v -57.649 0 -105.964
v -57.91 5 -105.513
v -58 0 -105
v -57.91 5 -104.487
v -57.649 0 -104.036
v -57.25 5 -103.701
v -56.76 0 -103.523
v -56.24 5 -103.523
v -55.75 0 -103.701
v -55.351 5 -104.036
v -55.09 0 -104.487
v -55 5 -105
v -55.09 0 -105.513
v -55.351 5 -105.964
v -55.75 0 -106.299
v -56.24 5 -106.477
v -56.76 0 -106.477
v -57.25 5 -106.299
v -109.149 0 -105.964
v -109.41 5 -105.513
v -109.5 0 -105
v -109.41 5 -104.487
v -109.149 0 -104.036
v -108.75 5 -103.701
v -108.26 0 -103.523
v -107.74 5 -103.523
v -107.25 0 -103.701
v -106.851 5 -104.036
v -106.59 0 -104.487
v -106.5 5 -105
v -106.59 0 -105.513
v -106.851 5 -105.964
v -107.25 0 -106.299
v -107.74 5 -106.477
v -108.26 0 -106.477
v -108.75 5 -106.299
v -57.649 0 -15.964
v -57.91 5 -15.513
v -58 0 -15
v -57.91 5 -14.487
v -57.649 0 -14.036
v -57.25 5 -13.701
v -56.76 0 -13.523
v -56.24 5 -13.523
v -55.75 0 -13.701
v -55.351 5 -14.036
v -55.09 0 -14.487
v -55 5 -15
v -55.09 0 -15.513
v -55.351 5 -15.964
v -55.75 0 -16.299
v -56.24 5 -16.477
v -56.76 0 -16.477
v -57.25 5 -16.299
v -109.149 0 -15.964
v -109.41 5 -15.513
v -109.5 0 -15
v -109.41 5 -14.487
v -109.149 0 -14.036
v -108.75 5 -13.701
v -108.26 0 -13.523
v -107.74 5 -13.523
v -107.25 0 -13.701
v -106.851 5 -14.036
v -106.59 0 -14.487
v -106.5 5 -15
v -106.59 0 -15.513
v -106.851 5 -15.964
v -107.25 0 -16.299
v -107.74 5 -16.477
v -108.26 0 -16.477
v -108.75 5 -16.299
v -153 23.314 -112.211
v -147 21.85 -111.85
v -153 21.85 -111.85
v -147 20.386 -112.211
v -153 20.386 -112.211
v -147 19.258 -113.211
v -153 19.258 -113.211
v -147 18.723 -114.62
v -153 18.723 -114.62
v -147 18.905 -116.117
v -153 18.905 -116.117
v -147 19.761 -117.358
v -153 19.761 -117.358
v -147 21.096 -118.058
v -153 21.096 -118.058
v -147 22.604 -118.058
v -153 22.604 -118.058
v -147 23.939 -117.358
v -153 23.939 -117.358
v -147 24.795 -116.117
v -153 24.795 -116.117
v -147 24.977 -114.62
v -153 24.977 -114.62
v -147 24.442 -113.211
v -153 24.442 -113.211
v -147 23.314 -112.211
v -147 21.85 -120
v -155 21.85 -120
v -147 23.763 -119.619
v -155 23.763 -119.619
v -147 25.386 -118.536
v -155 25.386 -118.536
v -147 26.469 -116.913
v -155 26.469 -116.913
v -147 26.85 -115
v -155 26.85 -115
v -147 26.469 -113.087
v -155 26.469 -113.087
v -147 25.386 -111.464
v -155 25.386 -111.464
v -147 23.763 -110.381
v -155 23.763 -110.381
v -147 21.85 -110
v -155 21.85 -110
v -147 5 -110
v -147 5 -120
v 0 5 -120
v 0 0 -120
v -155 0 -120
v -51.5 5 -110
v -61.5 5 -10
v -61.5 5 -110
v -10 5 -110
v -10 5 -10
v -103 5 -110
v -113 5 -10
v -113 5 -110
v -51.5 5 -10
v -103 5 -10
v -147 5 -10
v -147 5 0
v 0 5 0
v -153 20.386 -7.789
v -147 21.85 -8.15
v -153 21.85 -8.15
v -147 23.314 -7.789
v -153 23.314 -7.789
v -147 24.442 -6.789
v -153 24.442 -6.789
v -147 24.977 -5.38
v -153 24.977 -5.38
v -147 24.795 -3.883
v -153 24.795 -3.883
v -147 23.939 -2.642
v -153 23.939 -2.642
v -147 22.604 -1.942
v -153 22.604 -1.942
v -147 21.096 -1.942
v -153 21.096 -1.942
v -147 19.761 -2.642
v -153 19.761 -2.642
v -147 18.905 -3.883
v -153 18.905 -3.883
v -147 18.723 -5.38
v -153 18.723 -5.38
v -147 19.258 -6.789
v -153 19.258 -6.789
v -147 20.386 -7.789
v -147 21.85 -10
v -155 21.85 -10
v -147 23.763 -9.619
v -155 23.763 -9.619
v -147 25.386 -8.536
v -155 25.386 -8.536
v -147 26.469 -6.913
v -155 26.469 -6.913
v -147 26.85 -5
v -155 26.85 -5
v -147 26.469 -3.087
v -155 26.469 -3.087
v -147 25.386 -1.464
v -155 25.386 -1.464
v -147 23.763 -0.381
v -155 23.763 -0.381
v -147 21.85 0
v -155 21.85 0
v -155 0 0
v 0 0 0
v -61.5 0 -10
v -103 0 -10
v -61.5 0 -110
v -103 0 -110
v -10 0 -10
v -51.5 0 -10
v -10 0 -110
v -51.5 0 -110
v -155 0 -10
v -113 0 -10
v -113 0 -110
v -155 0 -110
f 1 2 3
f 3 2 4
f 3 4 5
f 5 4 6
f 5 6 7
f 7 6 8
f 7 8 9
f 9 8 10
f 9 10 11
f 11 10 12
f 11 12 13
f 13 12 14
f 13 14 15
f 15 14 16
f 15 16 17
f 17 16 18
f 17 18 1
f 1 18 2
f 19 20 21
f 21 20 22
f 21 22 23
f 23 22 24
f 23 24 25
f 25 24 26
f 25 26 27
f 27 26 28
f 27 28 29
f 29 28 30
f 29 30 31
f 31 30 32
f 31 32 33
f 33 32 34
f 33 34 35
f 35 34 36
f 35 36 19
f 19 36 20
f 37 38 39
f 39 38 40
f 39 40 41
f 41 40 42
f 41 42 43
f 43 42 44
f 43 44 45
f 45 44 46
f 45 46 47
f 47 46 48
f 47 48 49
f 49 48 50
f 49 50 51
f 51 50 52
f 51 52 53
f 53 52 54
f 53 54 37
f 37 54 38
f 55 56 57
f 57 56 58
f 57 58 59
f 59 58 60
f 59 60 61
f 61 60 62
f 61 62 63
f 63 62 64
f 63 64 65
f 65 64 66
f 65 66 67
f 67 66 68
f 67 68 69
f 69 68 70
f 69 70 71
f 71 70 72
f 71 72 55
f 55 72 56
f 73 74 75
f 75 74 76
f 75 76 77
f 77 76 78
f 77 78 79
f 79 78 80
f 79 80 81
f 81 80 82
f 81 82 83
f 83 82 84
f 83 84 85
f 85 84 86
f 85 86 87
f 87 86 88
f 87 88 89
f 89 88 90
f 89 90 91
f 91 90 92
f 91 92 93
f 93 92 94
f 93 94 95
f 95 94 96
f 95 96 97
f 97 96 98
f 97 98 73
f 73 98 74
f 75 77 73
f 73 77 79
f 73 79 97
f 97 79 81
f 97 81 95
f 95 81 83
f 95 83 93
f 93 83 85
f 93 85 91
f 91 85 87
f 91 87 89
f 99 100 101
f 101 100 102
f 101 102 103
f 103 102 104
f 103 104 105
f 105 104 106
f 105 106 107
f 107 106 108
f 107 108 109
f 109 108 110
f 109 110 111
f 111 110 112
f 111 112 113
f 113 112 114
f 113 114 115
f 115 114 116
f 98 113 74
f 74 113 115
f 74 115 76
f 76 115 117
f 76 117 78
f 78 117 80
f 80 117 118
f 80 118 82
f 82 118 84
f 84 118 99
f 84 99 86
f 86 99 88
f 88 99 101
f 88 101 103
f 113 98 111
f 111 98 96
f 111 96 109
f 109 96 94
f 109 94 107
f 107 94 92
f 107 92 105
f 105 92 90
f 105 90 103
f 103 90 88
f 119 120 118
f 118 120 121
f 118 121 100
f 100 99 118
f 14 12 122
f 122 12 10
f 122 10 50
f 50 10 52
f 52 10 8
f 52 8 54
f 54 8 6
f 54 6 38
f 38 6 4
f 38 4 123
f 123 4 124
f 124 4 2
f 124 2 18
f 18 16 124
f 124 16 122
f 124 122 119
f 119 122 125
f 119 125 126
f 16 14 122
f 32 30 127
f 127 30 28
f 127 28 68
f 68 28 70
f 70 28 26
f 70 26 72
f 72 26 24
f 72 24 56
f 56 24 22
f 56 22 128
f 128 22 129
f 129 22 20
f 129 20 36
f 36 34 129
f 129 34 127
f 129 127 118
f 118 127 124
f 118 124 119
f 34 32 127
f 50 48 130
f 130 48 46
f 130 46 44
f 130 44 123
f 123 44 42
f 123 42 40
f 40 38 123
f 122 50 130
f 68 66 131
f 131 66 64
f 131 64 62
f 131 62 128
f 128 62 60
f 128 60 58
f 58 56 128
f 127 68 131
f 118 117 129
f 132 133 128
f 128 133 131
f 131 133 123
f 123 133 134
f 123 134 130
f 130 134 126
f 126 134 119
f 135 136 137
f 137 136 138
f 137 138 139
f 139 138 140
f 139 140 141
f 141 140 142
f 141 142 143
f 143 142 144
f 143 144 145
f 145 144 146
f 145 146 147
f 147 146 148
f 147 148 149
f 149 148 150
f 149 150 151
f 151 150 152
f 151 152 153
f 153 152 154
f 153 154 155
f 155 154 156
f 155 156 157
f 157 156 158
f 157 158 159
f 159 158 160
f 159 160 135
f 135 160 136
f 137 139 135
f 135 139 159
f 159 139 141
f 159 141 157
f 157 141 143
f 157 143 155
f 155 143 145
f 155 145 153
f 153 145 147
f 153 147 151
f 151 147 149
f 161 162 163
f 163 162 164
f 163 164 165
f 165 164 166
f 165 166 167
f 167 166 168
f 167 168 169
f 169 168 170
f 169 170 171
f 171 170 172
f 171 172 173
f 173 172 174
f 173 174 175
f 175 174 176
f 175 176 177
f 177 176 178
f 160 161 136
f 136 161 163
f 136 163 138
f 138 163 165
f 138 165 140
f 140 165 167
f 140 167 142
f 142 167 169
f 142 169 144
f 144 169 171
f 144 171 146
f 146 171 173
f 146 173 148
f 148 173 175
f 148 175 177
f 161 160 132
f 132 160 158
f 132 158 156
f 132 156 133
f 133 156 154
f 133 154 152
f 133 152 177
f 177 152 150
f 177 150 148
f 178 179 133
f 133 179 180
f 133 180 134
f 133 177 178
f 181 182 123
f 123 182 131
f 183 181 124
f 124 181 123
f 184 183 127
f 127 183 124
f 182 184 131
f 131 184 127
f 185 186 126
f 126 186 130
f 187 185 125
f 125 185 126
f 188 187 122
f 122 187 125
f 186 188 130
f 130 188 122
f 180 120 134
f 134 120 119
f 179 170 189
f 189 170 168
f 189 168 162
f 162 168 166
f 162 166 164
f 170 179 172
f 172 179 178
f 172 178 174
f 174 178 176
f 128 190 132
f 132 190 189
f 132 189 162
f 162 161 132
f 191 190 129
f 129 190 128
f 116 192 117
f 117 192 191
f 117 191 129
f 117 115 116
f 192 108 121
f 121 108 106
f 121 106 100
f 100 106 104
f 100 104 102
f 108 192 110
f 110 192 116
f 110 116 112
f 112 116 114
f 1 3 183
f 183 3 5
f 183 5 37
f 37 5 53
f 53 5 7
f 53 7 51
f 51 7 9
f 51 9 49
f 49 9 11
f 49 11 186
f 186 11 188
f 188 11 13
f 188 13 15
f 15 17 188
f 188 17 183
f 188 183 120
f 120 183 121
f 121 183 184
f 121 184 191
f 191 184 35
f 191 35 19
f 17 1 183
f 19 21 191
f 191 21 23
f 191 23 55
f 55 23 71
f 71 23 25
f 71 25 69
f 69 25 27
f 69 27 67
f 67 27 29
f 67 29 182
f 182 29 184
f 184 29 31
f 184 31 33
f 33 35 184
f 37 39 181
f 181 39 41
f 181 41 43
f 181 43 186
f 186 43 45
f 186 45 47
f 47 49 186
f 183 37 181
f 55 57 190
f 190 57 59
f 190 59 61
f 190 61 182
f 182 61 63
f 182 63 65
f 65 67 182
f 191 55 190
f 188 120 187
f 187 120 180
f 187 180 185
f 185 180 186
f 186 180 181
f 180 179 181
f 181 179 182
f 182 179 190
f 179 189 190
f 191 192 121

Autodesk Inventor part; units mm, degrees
ref_plane "YZ Plane" through (0, 0, 0) normal (1, 0, 0) x (0, 1, 0)
ref_plane "XZ Plane" through (0, 0, 0) normal (0, 1, 0) x (-1, 0, 0)
sketch "Sketch1" plane through (0, 0, 0) normal (0, 1, 0) x (-1, 0, 0)
  line L0 (0, 0) -> (0, -120)
  line L1 (0, -120) -> (155, -120)
  line L2 (155, -120) -> (155, -110)
  line L3 (155, -110) -> (113, -110)
  line L4 (113, -110) -> (113, -10)
  line L5 (113, -10) -> (155, -10)
  line L6 (155, -10) -> (155, 0)
  line L7 (155, 0) -> (0, 0)
  line L8 (103, -10) -> (61.5, -10)
  line L9 (61.5, -10) -> (61.5, -110)
  line L10 (61.5, -110) -> (103, -110)
  line L11 (103, -110) -> (103, -10)
  line L12 (51.5, -10) -> (10, -10)
  line L13 (10, -10) -> (10, -110)
  line L14 (10, -110) -> (51.5, -110)
  line L15 (51.5, -110) -> (51.5, -10)
  dimension "d1" = 155
  dimension "d2" = 10
  dimension "d3" = 120
  dimension "d4" = 10
  dimension "d5" = 10
  dimension "d6" = 10
  dimension "d16" = 41.5
extrude "Extrusion1" add sketch "Sketch1" along normal blind 5
sketch "Sketch2" plane through (-155, 0, -10) normal (-1, 0, 0) x (0, 0, 1)
  line L0 (0, 0) -> (0, 5) projected
  line L1 (0, 0) -> (10, 0)
  line L2 (10, 0) -> (10, 21.85)
  line L3 (10, 21.85) -> (0, 21.85)
  line L4 (0, 21.85) -> (0, 0)
  circle A0 centre (5, 21.85) radius 3.15
  arc A1 (10, 21.85) -> (0, 21.85) centre (5, 21.85) ccw
  line L5 (10, 0) -> (10, 5) projected
  point P0 (0, 5)
  dimension "d9" = 21.85
  dimension "d10" = 6.3
extrude "Extrusion2" add sketch "Sketch2" against normal blind 8
sketch "Sketch3" plane through (-147, 0, -10) normal (1, 0, 0) x (0, 0, -1)
  arc A0 (0, 21.85) -> (-10, 21.85) centre (-5, 21.85) ccw projected
  circle A1 centre (-5, 21.85) radius 3.15
  point P0 (-10, 0)
  dimension "d13" = 6.3
extrude "Extrusion3" cut sketch "Sketch3" against normal blind 6
ref_plane "Work Plane1" through (-155, 0, -60) normal (0, 0, 1) x (1, 0, 0)
mirror "Mirror1" about plane through (-155, 0, -60) normal (0, 0, 1) of "Extrusion2", "Extrusion3"
sketch "Sketch4" plane through (0, 5, 0) normal (0, 1, 0) x (1, 0, 0)
  line L0 (-113, 110) -> (-113, 10) projected
  line L1 (-147, 0) -> (0, 0) projected
  point P0 (-108, 15)
  point P1 (-56.5, 15)
  point P2 (-108, 105)
  point P3 (-56.5, 105)
  dimension "d17" = 5
  dimension "d18" = 15
  dimension "d21" = 51.5
  dimension "d24" = 90
hole "Hole1" at (-108, 5, -15) at (-56.5, 5, -15) at (-108, 5, -105) at (-56.5, 5, -105) direction (0, -1, 0) diameter 3 end through all
equation "\"d1\" = table_base_length"
equation "\"d2\" = table_base_web_width"
equation "\"d3\" = table_base_width"
equation "\"d4\" = table_base_web_width"
equation "\"d5\" = table_base_web_width"
equation "\"d6\" = table_base_web_width"
equation "\"d7\" = table_base_thickness"
equation "\"d10\" = rod_diameter + rod_tolerance"
equation "\"d11\" = table_base_rod_holder_thickness"
equation "\"d13\" = rod_diameter + rod_tolerance"
equation "\"d14\" = 0.75 * table_base_rod_holder_thickness"
equation "\"d17\" = 0.5 * table_base_web_width"
equation "\"d18\" = 1.5 * table_base_web_width"
equation "\"d24\" = table_base_width - 3 * table_base_web_width"
equation "\"d27\" = screw_diameter"
equation "\"table_base_length\" = 155"
equation "\"table_base_width\" = 120"
equation "\"table_base_thickness\" = 5"
equation "\"table_base_web_width\" = 10"
equation "\"table_base_rod_height\" = 25"
equation "\"rod_diameter\" = 6"
equation "\"rod_tolerance\" = 0.3"
equation "\"table_base_rod_holder_thickness\" = 8"
equation "\"screw_diameter\" = 3"
properties part number "table_base"
